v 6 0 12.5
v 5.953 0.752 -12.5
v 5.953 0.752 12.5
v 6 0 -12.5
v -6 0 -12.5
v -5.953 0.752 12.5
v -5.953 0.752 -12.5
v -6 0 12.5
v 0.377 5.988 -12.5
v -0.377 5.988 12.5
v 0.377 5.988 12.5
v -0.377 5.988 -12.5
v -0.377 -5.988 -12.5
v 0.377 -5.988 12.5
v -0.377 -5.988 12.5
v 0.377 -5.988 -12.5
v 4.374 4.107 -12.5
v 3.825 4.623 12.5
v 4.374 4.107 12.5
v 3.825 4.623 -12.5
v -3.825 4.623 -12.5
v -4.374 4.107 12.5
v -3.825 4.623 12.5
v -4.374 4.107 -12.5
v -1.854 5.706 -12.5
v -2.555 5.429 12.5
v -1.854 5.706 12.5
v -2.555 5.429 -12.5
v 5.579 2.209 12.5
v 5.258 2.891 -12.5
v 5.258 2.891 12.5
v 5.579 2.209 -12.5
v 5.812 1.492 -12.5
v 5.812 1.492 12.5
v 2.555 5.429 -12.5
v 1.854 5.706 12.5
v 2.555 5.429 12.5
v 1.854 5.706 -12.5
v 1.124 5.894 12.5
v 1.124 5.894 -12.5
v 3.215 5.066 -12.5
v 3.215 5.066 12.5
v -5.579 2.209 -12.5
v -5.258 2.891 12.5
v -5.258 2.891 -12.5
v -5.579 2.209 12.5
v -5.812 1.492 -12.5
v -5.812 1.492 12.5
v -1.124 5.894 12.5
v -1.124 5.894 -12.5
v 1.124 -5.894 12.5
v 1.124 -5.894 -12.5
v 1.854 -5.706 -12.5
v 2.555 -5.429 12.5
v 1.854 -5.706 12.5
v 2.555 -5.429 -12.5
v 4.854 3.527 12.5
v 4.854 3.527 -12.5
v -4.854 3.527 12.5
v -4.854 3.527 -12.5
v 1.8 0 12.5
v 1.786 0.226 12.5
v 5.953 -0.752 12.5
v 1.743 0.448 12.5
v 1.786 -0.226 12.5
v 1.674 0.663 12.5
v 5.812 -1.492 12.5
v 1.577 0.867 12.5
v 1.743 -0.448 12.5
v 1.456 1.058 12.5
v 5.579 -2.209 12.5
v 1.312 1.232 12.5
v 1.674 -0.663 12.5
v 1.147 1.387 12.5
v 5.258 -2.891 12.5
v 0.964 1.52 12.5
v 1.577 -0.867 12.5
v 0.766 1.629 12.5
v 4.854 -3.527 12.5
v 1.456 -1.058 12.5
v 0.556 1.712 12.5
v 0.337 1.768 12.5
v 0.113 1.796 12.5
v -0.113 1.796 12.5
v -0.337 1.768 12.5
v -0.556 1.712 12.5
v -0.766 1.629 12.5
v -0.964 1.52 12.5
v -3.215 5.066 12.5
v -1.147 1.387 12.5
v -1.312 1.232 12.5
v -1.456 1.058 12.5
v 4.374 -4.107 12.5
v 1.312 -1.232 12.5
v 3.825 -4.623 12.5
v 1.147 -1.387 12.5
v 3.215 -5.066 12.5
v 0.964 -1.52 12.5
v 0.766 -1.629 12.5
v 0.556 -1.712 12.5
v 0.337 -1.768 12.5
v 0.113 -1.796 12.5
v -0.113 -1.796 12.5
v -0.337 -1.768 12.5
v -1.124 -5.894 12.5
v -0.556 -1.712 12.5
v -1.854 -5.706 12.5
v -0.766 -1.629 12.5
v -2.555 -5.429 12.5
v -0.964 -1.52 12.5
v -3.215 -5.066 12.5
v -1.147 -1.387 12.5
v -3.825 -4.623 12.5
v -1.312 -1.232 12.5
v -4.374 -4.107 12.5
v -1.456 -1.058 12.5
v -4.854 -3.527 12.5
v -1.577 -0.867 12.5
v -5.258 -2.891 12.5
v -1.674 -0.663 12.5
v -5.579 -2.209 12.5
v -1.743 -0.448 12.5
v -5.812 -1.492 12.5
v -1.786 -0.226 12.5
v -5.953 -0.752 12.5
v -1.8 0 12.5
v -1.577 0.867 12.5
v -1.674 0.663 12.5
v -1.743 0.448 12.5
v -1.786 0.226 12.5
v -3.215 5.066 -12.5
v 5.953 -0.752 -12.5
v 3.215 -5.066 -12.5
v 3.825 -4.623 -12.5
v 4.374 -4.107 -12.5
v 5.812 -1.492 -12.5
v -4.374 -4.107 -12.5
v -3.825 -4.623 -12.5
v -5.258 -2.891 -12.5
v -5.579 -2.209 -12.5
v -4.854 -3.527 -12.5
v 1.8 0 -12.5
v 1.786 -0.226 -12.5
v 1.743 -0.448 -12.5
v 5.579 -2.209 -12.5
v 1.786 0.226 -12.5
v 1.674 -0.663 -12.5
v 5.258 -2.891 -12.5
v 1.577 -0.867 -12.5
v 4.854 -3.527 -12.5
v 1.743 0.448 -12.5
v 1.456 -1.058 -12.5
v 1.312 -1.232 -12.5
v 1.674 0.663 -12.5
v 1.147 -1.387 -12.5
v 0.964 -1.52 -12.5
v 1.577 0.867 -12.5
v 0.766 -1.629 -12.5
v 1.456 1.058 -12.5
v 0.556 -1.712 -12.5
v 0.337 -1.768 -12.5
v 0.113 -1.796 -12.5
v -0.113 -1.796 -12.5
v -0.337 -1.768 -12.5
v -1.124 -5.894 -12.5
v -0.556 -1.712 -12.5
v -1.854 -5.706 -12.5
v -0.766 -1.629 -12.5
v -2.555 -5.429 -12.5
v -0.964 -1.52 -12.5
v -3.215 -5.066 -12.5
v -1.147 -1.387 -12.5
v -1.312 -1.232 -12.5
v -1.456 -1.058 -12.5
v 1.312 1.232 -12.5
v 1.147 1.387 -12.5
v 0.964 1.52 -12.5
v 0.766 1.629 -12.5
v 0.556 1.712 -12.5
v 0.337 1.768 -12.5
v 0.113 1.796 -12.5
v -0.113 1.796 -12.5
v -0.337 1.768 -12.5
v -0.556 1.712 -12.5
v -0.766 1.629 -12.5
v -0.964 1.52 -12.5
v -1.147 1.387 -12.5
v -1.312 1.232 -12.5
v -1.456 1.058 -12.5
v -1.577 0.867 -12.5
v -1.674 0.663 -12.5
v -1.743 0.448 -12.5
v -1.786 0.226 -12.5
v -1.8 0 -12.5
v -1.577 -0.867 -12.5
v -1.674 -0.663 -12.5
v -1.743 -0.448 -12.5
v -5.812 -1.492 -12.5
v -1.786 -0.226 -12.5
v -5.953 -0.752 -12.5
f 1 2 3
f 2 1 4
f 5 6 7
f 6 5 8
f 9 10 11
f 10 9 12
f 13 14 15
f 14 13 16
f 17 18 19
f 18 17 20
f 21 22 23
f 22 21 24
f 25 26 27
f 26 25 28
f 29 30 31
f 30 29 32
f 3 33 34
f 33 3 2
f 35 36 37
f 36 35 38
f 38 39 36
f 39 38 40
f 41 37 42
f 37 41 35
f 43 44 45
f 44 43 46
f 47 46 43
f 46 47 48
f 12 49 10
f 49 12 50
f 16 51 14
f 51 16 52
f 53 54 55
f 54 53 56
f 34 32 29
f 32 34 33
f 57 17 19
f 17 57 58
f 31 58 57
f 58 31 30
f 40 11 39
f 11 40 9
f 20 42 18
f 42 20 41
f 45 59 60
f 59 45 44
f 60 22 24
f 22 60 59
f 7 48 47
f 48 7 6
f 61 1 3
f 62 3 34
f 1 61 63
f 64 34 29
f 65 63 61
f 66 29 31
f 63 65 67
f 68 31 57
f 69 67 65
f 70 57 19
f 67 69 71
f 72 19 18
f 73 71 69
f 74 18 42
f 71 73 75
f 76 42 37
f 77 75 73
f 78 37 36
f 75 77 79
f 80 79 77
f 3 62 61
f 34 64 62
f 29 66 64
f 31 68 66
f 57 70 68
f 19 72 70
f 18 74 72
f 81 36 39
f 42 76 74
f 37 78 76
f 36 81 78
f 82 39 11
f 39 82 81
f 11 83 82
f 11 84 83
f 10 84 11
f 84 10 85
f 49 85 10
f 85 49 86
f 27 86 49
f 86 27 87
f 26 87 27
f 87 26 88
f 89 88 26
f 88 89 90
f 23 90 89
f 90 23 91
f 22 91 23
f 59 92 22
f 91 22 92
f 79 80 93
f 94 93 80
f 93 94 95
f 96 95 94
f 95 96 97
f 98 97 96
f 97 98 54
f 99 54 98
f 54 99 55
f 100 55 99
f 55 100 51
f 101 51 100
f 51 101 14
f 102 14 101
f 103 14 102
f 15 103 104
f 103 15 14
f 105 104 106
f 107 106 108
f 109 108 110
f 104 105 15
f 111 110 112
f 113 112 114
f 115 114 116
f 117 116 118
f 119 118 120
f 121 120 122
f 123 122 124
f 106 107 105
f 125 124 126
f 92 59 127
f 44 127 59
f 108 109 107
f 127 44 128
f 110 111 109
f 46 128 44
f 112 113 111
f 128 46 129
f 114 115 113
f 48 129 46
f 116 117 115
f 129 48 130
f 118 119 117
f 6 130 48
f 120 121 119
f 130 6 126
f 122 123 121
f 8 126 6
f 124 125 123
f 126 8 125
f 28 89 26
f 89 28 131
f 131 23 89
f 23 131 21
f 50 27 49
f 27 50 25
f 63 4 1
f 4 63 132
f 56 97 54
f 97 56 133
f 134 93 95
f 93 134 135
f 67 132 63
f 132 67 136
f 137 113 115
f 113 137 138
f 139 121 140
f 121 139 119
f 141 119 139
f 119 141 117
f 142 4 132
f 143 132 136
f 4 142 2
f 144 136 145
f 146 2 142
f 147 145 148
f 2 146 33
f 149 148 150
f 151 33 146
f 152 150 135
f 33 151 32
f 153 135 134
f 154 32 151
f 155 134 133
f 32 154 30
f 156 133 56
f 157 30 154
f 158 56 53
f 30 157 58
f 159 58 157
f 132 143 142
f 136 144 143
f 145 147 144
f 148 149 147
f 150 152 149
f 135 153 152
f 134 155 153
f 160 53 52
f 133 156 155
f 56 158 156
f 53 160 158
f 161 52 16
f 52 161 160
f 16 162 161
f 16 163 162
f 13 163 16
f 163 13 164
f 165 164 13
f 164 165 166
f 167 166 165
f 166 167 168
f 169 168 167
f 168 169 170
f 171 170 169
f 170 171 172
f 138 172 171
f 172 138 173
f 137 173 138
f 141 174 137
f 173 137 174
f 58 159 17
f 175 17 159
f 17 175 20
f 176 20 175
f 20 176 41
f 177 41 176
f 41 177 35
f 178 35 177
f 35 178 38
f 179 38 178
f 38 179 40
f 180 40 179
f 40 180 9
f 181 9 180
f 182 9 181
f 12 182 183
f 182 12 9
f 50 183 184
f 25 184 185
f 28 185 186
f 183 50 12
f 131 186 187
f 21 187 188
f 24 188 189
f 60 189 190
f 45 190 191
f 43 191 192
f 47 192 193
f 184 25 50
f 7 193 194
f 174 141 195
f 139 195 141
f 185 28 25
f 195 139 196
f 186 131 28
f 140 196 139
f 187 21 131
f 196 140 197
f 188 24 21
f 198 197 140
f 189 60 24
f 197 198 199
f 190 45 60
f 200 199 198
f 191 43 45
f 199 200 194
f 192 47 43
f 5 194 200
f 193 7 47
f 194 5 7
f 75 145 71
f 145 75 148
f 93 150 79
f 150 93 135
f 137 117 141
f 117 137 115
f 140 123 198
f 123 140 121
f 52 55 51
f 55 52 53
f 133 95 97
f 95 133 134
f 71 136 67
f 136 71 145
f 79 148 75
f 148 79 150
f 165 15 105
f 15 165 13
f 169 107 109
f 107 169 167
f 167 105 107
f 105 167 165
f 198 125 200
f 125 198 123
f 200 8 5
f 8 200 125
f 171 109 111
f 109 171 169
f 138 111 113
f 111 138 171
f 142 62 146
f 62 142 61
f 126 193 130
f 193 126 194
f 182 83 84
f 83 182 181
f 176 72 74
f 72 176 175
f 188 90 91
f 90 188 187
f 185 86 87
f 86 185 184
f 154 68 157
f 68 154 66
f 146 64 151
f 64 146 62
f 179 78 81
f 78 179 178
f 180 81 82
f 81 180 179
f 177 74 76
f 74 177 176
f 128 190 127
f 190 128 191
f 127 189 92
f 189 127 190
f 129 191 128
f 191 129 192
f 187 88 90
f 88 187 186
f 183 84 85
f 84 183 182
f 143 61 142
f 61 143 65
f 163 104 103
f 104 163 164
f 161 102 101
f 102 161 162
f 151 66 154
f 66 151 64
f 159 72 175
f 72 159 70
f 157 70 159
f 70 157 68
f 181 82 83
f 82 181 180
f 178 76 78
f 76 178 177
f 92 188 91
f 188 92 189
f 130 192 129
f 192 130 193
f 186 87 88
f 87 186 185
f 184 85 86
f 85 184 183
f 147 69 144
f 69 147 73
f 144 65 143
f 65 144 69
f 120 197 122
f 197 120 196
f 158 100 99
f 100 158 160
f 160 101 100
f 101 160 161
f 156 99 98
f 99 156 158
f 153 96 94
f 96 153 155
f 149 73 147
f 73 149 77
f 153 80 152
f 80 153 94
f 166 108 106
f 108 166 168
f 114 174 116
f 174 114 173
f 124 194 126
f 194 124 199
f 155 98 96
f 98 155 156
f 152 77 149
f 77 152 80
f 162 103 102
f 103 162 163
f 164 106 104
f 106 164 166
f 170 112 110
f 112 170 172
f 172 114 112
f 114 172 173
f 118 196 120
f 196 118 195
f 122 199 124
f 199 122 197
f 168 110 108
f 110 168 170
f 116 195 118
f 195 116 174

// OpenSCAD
$fn = 50;


difference() {
	union() {
		translate(v = [0, 0, -12.5000000000]) {
			cylinder(h = 25, r = 6.0000000000);
		}
	}
	union() {
		translate(v = [0, 0, -100.0000000000]) {
			cylinder(h = 200, r = 1.8000000000);
		}
	}
}
